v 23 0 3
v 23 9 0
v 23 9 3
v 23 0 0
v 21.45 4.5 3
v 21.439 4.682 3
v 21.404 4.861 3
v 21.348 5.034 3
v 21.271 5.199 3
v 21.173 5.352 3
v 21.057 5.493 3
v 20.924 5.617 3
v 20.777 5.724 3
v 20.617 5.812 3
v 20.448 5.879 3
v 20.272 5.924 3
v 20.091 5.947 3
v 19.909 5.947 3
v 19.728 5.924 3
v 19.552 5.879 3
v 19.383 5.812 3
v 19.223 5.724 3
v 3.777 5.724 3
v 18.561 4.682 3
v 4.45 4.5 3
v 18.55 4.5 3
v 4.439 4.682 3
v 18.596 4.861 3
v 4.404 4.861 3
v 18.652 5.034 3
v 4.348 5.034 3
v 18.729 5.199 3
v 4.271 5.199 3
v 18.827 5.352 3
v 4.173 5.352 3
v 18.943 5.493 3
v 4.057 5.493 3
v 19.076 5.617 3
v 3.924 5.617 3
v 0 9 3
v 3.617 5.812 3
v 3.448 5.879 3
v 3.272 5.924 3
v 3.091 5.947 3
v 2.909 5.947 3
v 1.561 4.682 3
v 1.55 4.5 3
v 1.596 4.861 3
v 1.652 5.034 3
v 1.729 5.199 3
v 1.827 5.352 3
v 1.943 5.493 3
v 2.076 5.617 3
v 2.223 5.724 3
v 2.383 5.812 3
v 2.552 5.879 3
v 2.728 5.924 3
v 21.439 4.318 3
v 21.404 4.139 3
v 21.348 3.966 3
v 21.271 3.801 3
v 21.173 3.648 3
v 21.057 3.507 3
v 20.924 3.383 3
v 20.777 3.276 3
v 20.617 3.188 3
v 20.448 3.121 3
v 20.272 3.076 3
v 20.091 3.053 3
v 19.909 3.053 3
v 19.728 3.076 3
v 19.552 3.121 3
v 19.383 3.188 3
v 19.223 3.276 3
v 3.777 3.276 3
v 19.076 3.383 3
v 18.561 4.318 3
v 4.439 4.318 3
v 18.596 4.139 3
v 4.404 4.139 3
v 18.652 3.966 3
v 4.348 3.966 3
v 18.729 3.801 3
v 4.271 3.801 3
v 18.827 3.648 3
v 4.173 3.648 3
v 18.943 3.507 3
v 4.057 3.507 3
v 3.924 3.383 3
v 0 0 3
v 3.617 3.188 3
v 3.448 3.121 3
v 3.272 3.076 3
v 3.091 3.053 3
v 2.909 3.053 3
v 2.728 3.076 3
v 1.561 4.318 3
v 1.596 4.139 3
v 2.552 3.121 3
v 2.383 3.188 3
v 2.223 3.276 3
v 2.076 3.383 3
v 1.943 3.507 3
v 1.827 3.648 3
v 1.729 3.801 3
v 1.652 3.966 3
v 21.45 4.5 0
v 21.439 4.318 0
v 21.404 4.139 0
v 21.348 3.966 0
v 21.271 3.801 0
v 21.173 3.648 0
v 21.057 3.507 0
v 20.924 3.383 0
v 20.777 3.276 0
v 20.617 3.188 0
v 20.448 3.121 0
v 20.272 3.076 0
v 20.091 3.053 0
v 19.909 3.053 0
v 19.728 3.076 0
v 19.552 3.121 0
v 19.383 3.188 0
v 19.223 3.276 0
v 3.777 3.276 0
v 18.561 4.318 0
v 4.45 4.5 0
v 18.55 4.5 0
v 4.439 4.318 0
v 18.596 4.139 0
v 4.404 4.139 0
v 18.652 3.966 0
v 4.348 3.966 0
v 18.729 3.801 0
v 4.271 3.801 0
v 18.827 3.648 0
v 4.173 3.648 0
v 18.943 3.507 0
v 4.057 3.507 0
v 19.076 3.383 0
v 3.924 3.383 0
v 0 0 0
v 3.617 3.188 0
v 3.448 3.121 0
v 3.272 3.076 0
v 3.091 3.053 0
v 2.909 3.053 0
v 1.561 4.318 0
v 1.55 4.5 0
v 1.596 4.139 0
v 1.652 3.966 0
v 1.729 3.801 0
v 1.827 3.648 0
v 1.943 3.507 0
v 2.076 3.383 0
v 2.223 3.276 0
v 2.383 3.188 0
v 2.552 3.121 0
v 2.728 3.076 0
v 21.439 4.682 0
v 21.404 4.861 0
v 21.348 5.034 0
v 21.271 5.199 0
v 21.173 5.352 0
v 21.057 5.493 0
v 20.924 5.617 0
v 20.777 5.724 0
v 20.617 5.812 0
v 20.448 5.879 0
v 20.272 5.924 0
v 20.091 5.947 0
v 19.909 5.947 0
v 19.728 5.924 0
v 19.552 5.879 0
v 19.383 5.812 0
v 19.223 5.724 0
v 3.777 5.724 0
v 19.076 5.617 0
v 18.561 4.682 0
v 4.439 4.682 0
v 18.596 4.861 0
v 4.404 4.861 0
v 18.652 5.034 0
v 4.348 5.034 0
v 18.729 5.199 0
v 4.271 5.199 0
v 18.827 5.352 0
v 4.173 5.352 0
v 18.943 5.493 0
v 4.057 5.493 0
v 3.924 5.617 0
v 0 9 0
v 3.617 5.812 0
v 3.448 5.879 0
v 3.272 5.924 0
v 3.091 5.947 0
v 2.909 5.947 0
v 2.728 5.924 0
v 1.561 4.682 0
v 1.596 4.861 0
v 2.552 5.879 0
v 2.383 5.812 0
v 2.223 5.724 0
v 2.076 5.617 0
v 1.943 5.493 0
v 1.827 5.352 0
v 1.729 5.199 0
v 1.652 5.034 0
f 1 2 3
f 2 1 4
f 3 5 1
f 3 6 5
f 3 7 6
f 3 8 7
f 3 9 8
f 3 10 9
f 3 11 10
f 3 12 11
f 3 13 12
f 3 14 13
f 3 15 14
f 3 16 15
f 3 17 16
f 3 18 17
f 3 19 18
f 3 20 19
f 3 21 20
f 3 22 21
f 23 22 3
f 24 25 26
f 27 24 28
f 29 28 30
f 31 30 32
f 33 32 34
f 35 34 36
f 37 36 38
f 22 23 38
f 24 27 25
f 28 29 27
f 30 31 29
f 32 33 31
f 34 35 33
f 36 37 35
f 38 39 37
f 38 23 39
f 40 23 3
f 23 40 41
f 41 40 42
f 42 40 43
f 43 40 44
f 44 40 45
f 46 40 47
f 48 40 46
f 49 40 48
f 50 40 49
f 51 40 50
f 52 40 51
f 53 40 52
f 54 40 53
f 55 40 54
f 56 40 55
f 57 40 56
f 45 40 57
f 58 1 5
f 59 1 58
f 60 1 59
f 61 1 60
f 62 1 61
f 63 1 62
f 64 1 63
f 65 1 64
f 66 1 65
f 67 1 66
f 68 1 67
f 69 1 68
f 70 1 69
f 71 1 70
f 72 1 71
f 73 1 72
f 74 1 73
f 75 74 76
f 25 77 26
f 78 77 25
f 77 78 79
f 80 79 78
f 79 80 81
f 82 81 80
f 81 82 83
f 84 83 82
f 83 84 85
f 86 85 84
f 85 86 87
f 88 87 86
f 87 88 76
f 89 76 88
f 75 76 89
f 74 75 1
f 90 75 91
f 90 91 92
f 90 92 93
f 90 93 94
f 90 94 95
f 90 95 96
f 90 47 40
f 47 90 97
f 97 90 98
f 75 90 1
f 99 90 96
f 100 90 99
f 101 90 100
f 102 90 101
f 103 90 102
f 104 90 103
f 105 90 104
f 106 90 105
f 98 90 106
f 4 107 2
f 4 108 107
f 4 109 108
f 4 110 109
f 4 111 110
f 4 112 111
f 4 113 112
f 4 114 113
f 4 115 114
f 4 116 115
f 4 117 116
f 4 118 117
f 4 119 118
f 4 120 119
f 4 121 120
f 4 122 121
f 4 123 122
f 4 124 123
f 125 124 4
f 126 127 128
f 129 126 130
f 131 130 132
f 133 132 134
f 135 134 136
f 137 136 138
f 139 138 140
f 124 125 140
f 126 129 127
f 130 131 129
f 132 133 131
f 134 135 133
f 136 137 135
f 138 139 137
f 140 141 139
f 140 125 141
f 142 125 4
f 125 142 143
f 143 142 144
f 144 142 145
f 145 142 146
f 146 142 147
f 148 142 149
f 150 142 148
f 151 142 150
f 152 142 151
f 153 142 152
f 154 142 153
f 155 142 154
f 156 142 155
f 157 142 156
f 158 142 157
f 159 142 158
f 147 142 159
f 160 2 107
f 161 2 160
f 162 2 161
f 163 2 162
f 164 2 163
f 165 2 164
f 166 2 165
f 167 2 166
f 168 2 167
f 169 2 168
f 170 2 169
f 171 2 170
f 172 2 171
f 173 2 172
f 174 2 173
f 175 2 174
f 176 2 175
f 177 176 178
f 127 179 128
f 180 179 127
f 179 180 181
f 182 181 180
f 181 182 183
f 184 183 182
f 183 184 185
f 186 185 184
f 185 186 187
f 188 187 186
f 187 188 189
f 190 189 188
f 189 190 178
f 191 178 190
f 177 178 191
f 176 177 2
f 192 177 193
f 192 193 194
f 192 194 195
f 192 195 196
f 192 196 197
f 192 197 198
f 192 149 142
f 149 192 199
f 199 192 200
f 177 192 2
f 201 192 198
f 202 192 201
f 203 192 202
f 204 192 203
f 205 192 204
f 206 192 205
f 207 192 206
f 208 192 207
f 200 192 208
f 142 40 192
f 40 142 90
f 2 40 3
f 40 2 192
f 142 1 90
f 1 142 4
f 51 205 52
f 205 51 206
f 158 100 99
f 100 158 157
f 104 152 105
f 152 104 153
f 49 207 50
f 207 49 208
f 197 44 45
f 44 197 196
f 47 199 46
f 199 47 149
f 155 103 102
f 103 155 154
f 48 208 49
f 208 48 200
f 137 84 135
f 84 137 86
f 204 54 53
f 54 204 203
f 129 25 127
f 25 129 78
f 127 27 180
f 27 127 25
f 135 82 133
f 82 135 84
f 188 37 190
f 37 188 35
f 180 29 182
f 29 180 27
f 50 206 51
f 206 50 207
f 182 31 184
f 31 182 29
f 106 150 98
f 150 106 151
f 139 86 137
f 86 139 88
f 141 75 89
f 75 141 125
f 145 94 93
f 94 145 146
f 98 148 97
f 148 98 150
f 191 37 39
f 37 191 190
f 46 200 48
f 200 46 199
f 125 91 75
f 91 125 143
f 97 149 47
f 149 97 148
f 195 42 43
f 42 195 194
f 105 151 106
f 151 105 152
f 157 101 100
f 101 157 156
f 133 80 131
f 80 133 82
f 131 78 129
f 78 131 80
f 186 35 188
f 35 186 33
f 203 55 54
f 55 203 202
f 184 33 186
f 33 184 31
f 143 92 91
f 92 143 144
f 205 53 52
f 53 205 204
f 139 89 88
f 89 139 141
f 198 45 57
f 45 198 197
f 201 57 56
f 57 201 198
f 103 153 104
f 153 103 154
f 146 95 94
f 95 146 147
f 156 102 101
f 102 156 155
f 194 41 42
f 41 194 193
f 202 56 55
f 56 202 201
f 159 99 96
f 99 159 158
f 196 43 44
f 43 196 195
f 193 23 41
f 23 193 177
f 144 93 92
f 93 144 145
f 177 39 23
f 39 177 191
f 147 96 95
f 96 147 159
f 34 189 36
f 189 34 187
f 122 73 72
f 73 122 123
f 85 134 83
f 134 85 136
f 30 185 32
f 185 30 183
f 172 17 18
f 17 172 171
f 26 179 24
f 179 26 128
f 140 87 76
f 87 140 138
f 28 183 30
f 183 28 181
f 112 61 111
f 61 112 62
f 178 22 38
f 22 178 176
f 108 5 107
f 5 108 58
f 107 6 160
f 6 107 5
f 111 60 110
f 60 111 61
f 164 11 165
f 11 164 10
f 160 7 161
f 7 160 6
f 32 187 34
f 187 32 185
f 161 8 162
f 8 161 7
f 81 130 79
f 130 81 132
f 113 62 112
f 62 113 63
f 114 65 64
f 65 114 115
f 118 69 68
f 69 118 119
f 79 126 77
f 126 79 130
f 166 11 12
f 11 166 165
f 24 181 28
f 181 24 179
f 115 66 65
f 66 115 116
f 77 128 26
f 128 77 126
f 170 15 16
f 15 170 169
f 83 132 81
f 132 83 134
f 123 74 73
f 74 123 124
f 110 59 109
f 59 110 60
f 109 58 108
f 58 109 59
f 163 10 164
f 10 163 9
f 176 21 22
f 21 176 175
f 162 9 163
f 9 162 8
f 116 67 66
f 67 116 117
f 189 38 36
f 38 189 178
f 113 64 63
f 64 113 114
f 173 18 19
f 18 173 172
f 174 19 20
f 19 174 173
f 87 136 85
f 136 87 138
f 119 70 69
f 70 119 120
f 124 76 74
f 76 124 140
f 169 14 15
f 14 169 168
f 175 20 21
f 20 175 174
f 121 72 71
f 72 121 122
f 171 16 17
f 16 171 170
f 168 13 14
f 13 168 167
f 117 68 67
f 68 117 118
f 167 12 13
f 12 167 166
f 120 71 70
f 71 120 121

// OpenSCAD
show_assembly = !true;

is_tappable = false;

e = 1/64;


center_to_center = 17;
// 3 + c2c + 7 is full span
length = 3 + center_to_center + 3;
width = 3 + 3 + 3;

default_thickness = 3.0;

// M2.5 has diameter of 2.5mm
m2p5_punch_radius_tappable = (2.5 - 0.15) / 2;
m2p5_punch_radius_slideable = (2.5 + 0.4) / 2;



module m2p5_screw_punch(radius = m2p5_punch_radius_slideable,  thickness = default_thickness) {

  linear_extrude(height = thickness + 2*e) {
    circle(r=radius, $fn=50);
  }
}

module main_block() {

  radius = is_tappable ? m2p5_punch_radius_tappable : m2p5_punch_radius_slideable;

  difference () {
    cube([length, width, default_thickness]);

    translate([3 , (width / 2) , -e])
      m2p5_screw_punch(radius = radius, thickness = 10);

    translate([3 + center_to_center, (width / 2), -e])
      m2p5_screw_punch(radius = radius, thickness = 10);


  }

}


module m2p5_post (height = 8) {

  linear_extrude(height = height) {
    difference () {
      circle(r = 2.5);
      circle(r = m2p5_punch_radius_slideable, $fn=50);
    }
  }
}


post_height = 8;

module assembly() {

  translate([0,0, post_height]) {
    main_block();
  }

  translate([3, (width / 2), 0]) {
    m2p5_post();
  }

  translate([3 + center_to_center, (width / 2), 0]) {
    m2p5_post();
  }
}

if (show_assembly) {
  assembly();
} else {
  //M2p5_screw_punch_tappable();
  main_block();
}
